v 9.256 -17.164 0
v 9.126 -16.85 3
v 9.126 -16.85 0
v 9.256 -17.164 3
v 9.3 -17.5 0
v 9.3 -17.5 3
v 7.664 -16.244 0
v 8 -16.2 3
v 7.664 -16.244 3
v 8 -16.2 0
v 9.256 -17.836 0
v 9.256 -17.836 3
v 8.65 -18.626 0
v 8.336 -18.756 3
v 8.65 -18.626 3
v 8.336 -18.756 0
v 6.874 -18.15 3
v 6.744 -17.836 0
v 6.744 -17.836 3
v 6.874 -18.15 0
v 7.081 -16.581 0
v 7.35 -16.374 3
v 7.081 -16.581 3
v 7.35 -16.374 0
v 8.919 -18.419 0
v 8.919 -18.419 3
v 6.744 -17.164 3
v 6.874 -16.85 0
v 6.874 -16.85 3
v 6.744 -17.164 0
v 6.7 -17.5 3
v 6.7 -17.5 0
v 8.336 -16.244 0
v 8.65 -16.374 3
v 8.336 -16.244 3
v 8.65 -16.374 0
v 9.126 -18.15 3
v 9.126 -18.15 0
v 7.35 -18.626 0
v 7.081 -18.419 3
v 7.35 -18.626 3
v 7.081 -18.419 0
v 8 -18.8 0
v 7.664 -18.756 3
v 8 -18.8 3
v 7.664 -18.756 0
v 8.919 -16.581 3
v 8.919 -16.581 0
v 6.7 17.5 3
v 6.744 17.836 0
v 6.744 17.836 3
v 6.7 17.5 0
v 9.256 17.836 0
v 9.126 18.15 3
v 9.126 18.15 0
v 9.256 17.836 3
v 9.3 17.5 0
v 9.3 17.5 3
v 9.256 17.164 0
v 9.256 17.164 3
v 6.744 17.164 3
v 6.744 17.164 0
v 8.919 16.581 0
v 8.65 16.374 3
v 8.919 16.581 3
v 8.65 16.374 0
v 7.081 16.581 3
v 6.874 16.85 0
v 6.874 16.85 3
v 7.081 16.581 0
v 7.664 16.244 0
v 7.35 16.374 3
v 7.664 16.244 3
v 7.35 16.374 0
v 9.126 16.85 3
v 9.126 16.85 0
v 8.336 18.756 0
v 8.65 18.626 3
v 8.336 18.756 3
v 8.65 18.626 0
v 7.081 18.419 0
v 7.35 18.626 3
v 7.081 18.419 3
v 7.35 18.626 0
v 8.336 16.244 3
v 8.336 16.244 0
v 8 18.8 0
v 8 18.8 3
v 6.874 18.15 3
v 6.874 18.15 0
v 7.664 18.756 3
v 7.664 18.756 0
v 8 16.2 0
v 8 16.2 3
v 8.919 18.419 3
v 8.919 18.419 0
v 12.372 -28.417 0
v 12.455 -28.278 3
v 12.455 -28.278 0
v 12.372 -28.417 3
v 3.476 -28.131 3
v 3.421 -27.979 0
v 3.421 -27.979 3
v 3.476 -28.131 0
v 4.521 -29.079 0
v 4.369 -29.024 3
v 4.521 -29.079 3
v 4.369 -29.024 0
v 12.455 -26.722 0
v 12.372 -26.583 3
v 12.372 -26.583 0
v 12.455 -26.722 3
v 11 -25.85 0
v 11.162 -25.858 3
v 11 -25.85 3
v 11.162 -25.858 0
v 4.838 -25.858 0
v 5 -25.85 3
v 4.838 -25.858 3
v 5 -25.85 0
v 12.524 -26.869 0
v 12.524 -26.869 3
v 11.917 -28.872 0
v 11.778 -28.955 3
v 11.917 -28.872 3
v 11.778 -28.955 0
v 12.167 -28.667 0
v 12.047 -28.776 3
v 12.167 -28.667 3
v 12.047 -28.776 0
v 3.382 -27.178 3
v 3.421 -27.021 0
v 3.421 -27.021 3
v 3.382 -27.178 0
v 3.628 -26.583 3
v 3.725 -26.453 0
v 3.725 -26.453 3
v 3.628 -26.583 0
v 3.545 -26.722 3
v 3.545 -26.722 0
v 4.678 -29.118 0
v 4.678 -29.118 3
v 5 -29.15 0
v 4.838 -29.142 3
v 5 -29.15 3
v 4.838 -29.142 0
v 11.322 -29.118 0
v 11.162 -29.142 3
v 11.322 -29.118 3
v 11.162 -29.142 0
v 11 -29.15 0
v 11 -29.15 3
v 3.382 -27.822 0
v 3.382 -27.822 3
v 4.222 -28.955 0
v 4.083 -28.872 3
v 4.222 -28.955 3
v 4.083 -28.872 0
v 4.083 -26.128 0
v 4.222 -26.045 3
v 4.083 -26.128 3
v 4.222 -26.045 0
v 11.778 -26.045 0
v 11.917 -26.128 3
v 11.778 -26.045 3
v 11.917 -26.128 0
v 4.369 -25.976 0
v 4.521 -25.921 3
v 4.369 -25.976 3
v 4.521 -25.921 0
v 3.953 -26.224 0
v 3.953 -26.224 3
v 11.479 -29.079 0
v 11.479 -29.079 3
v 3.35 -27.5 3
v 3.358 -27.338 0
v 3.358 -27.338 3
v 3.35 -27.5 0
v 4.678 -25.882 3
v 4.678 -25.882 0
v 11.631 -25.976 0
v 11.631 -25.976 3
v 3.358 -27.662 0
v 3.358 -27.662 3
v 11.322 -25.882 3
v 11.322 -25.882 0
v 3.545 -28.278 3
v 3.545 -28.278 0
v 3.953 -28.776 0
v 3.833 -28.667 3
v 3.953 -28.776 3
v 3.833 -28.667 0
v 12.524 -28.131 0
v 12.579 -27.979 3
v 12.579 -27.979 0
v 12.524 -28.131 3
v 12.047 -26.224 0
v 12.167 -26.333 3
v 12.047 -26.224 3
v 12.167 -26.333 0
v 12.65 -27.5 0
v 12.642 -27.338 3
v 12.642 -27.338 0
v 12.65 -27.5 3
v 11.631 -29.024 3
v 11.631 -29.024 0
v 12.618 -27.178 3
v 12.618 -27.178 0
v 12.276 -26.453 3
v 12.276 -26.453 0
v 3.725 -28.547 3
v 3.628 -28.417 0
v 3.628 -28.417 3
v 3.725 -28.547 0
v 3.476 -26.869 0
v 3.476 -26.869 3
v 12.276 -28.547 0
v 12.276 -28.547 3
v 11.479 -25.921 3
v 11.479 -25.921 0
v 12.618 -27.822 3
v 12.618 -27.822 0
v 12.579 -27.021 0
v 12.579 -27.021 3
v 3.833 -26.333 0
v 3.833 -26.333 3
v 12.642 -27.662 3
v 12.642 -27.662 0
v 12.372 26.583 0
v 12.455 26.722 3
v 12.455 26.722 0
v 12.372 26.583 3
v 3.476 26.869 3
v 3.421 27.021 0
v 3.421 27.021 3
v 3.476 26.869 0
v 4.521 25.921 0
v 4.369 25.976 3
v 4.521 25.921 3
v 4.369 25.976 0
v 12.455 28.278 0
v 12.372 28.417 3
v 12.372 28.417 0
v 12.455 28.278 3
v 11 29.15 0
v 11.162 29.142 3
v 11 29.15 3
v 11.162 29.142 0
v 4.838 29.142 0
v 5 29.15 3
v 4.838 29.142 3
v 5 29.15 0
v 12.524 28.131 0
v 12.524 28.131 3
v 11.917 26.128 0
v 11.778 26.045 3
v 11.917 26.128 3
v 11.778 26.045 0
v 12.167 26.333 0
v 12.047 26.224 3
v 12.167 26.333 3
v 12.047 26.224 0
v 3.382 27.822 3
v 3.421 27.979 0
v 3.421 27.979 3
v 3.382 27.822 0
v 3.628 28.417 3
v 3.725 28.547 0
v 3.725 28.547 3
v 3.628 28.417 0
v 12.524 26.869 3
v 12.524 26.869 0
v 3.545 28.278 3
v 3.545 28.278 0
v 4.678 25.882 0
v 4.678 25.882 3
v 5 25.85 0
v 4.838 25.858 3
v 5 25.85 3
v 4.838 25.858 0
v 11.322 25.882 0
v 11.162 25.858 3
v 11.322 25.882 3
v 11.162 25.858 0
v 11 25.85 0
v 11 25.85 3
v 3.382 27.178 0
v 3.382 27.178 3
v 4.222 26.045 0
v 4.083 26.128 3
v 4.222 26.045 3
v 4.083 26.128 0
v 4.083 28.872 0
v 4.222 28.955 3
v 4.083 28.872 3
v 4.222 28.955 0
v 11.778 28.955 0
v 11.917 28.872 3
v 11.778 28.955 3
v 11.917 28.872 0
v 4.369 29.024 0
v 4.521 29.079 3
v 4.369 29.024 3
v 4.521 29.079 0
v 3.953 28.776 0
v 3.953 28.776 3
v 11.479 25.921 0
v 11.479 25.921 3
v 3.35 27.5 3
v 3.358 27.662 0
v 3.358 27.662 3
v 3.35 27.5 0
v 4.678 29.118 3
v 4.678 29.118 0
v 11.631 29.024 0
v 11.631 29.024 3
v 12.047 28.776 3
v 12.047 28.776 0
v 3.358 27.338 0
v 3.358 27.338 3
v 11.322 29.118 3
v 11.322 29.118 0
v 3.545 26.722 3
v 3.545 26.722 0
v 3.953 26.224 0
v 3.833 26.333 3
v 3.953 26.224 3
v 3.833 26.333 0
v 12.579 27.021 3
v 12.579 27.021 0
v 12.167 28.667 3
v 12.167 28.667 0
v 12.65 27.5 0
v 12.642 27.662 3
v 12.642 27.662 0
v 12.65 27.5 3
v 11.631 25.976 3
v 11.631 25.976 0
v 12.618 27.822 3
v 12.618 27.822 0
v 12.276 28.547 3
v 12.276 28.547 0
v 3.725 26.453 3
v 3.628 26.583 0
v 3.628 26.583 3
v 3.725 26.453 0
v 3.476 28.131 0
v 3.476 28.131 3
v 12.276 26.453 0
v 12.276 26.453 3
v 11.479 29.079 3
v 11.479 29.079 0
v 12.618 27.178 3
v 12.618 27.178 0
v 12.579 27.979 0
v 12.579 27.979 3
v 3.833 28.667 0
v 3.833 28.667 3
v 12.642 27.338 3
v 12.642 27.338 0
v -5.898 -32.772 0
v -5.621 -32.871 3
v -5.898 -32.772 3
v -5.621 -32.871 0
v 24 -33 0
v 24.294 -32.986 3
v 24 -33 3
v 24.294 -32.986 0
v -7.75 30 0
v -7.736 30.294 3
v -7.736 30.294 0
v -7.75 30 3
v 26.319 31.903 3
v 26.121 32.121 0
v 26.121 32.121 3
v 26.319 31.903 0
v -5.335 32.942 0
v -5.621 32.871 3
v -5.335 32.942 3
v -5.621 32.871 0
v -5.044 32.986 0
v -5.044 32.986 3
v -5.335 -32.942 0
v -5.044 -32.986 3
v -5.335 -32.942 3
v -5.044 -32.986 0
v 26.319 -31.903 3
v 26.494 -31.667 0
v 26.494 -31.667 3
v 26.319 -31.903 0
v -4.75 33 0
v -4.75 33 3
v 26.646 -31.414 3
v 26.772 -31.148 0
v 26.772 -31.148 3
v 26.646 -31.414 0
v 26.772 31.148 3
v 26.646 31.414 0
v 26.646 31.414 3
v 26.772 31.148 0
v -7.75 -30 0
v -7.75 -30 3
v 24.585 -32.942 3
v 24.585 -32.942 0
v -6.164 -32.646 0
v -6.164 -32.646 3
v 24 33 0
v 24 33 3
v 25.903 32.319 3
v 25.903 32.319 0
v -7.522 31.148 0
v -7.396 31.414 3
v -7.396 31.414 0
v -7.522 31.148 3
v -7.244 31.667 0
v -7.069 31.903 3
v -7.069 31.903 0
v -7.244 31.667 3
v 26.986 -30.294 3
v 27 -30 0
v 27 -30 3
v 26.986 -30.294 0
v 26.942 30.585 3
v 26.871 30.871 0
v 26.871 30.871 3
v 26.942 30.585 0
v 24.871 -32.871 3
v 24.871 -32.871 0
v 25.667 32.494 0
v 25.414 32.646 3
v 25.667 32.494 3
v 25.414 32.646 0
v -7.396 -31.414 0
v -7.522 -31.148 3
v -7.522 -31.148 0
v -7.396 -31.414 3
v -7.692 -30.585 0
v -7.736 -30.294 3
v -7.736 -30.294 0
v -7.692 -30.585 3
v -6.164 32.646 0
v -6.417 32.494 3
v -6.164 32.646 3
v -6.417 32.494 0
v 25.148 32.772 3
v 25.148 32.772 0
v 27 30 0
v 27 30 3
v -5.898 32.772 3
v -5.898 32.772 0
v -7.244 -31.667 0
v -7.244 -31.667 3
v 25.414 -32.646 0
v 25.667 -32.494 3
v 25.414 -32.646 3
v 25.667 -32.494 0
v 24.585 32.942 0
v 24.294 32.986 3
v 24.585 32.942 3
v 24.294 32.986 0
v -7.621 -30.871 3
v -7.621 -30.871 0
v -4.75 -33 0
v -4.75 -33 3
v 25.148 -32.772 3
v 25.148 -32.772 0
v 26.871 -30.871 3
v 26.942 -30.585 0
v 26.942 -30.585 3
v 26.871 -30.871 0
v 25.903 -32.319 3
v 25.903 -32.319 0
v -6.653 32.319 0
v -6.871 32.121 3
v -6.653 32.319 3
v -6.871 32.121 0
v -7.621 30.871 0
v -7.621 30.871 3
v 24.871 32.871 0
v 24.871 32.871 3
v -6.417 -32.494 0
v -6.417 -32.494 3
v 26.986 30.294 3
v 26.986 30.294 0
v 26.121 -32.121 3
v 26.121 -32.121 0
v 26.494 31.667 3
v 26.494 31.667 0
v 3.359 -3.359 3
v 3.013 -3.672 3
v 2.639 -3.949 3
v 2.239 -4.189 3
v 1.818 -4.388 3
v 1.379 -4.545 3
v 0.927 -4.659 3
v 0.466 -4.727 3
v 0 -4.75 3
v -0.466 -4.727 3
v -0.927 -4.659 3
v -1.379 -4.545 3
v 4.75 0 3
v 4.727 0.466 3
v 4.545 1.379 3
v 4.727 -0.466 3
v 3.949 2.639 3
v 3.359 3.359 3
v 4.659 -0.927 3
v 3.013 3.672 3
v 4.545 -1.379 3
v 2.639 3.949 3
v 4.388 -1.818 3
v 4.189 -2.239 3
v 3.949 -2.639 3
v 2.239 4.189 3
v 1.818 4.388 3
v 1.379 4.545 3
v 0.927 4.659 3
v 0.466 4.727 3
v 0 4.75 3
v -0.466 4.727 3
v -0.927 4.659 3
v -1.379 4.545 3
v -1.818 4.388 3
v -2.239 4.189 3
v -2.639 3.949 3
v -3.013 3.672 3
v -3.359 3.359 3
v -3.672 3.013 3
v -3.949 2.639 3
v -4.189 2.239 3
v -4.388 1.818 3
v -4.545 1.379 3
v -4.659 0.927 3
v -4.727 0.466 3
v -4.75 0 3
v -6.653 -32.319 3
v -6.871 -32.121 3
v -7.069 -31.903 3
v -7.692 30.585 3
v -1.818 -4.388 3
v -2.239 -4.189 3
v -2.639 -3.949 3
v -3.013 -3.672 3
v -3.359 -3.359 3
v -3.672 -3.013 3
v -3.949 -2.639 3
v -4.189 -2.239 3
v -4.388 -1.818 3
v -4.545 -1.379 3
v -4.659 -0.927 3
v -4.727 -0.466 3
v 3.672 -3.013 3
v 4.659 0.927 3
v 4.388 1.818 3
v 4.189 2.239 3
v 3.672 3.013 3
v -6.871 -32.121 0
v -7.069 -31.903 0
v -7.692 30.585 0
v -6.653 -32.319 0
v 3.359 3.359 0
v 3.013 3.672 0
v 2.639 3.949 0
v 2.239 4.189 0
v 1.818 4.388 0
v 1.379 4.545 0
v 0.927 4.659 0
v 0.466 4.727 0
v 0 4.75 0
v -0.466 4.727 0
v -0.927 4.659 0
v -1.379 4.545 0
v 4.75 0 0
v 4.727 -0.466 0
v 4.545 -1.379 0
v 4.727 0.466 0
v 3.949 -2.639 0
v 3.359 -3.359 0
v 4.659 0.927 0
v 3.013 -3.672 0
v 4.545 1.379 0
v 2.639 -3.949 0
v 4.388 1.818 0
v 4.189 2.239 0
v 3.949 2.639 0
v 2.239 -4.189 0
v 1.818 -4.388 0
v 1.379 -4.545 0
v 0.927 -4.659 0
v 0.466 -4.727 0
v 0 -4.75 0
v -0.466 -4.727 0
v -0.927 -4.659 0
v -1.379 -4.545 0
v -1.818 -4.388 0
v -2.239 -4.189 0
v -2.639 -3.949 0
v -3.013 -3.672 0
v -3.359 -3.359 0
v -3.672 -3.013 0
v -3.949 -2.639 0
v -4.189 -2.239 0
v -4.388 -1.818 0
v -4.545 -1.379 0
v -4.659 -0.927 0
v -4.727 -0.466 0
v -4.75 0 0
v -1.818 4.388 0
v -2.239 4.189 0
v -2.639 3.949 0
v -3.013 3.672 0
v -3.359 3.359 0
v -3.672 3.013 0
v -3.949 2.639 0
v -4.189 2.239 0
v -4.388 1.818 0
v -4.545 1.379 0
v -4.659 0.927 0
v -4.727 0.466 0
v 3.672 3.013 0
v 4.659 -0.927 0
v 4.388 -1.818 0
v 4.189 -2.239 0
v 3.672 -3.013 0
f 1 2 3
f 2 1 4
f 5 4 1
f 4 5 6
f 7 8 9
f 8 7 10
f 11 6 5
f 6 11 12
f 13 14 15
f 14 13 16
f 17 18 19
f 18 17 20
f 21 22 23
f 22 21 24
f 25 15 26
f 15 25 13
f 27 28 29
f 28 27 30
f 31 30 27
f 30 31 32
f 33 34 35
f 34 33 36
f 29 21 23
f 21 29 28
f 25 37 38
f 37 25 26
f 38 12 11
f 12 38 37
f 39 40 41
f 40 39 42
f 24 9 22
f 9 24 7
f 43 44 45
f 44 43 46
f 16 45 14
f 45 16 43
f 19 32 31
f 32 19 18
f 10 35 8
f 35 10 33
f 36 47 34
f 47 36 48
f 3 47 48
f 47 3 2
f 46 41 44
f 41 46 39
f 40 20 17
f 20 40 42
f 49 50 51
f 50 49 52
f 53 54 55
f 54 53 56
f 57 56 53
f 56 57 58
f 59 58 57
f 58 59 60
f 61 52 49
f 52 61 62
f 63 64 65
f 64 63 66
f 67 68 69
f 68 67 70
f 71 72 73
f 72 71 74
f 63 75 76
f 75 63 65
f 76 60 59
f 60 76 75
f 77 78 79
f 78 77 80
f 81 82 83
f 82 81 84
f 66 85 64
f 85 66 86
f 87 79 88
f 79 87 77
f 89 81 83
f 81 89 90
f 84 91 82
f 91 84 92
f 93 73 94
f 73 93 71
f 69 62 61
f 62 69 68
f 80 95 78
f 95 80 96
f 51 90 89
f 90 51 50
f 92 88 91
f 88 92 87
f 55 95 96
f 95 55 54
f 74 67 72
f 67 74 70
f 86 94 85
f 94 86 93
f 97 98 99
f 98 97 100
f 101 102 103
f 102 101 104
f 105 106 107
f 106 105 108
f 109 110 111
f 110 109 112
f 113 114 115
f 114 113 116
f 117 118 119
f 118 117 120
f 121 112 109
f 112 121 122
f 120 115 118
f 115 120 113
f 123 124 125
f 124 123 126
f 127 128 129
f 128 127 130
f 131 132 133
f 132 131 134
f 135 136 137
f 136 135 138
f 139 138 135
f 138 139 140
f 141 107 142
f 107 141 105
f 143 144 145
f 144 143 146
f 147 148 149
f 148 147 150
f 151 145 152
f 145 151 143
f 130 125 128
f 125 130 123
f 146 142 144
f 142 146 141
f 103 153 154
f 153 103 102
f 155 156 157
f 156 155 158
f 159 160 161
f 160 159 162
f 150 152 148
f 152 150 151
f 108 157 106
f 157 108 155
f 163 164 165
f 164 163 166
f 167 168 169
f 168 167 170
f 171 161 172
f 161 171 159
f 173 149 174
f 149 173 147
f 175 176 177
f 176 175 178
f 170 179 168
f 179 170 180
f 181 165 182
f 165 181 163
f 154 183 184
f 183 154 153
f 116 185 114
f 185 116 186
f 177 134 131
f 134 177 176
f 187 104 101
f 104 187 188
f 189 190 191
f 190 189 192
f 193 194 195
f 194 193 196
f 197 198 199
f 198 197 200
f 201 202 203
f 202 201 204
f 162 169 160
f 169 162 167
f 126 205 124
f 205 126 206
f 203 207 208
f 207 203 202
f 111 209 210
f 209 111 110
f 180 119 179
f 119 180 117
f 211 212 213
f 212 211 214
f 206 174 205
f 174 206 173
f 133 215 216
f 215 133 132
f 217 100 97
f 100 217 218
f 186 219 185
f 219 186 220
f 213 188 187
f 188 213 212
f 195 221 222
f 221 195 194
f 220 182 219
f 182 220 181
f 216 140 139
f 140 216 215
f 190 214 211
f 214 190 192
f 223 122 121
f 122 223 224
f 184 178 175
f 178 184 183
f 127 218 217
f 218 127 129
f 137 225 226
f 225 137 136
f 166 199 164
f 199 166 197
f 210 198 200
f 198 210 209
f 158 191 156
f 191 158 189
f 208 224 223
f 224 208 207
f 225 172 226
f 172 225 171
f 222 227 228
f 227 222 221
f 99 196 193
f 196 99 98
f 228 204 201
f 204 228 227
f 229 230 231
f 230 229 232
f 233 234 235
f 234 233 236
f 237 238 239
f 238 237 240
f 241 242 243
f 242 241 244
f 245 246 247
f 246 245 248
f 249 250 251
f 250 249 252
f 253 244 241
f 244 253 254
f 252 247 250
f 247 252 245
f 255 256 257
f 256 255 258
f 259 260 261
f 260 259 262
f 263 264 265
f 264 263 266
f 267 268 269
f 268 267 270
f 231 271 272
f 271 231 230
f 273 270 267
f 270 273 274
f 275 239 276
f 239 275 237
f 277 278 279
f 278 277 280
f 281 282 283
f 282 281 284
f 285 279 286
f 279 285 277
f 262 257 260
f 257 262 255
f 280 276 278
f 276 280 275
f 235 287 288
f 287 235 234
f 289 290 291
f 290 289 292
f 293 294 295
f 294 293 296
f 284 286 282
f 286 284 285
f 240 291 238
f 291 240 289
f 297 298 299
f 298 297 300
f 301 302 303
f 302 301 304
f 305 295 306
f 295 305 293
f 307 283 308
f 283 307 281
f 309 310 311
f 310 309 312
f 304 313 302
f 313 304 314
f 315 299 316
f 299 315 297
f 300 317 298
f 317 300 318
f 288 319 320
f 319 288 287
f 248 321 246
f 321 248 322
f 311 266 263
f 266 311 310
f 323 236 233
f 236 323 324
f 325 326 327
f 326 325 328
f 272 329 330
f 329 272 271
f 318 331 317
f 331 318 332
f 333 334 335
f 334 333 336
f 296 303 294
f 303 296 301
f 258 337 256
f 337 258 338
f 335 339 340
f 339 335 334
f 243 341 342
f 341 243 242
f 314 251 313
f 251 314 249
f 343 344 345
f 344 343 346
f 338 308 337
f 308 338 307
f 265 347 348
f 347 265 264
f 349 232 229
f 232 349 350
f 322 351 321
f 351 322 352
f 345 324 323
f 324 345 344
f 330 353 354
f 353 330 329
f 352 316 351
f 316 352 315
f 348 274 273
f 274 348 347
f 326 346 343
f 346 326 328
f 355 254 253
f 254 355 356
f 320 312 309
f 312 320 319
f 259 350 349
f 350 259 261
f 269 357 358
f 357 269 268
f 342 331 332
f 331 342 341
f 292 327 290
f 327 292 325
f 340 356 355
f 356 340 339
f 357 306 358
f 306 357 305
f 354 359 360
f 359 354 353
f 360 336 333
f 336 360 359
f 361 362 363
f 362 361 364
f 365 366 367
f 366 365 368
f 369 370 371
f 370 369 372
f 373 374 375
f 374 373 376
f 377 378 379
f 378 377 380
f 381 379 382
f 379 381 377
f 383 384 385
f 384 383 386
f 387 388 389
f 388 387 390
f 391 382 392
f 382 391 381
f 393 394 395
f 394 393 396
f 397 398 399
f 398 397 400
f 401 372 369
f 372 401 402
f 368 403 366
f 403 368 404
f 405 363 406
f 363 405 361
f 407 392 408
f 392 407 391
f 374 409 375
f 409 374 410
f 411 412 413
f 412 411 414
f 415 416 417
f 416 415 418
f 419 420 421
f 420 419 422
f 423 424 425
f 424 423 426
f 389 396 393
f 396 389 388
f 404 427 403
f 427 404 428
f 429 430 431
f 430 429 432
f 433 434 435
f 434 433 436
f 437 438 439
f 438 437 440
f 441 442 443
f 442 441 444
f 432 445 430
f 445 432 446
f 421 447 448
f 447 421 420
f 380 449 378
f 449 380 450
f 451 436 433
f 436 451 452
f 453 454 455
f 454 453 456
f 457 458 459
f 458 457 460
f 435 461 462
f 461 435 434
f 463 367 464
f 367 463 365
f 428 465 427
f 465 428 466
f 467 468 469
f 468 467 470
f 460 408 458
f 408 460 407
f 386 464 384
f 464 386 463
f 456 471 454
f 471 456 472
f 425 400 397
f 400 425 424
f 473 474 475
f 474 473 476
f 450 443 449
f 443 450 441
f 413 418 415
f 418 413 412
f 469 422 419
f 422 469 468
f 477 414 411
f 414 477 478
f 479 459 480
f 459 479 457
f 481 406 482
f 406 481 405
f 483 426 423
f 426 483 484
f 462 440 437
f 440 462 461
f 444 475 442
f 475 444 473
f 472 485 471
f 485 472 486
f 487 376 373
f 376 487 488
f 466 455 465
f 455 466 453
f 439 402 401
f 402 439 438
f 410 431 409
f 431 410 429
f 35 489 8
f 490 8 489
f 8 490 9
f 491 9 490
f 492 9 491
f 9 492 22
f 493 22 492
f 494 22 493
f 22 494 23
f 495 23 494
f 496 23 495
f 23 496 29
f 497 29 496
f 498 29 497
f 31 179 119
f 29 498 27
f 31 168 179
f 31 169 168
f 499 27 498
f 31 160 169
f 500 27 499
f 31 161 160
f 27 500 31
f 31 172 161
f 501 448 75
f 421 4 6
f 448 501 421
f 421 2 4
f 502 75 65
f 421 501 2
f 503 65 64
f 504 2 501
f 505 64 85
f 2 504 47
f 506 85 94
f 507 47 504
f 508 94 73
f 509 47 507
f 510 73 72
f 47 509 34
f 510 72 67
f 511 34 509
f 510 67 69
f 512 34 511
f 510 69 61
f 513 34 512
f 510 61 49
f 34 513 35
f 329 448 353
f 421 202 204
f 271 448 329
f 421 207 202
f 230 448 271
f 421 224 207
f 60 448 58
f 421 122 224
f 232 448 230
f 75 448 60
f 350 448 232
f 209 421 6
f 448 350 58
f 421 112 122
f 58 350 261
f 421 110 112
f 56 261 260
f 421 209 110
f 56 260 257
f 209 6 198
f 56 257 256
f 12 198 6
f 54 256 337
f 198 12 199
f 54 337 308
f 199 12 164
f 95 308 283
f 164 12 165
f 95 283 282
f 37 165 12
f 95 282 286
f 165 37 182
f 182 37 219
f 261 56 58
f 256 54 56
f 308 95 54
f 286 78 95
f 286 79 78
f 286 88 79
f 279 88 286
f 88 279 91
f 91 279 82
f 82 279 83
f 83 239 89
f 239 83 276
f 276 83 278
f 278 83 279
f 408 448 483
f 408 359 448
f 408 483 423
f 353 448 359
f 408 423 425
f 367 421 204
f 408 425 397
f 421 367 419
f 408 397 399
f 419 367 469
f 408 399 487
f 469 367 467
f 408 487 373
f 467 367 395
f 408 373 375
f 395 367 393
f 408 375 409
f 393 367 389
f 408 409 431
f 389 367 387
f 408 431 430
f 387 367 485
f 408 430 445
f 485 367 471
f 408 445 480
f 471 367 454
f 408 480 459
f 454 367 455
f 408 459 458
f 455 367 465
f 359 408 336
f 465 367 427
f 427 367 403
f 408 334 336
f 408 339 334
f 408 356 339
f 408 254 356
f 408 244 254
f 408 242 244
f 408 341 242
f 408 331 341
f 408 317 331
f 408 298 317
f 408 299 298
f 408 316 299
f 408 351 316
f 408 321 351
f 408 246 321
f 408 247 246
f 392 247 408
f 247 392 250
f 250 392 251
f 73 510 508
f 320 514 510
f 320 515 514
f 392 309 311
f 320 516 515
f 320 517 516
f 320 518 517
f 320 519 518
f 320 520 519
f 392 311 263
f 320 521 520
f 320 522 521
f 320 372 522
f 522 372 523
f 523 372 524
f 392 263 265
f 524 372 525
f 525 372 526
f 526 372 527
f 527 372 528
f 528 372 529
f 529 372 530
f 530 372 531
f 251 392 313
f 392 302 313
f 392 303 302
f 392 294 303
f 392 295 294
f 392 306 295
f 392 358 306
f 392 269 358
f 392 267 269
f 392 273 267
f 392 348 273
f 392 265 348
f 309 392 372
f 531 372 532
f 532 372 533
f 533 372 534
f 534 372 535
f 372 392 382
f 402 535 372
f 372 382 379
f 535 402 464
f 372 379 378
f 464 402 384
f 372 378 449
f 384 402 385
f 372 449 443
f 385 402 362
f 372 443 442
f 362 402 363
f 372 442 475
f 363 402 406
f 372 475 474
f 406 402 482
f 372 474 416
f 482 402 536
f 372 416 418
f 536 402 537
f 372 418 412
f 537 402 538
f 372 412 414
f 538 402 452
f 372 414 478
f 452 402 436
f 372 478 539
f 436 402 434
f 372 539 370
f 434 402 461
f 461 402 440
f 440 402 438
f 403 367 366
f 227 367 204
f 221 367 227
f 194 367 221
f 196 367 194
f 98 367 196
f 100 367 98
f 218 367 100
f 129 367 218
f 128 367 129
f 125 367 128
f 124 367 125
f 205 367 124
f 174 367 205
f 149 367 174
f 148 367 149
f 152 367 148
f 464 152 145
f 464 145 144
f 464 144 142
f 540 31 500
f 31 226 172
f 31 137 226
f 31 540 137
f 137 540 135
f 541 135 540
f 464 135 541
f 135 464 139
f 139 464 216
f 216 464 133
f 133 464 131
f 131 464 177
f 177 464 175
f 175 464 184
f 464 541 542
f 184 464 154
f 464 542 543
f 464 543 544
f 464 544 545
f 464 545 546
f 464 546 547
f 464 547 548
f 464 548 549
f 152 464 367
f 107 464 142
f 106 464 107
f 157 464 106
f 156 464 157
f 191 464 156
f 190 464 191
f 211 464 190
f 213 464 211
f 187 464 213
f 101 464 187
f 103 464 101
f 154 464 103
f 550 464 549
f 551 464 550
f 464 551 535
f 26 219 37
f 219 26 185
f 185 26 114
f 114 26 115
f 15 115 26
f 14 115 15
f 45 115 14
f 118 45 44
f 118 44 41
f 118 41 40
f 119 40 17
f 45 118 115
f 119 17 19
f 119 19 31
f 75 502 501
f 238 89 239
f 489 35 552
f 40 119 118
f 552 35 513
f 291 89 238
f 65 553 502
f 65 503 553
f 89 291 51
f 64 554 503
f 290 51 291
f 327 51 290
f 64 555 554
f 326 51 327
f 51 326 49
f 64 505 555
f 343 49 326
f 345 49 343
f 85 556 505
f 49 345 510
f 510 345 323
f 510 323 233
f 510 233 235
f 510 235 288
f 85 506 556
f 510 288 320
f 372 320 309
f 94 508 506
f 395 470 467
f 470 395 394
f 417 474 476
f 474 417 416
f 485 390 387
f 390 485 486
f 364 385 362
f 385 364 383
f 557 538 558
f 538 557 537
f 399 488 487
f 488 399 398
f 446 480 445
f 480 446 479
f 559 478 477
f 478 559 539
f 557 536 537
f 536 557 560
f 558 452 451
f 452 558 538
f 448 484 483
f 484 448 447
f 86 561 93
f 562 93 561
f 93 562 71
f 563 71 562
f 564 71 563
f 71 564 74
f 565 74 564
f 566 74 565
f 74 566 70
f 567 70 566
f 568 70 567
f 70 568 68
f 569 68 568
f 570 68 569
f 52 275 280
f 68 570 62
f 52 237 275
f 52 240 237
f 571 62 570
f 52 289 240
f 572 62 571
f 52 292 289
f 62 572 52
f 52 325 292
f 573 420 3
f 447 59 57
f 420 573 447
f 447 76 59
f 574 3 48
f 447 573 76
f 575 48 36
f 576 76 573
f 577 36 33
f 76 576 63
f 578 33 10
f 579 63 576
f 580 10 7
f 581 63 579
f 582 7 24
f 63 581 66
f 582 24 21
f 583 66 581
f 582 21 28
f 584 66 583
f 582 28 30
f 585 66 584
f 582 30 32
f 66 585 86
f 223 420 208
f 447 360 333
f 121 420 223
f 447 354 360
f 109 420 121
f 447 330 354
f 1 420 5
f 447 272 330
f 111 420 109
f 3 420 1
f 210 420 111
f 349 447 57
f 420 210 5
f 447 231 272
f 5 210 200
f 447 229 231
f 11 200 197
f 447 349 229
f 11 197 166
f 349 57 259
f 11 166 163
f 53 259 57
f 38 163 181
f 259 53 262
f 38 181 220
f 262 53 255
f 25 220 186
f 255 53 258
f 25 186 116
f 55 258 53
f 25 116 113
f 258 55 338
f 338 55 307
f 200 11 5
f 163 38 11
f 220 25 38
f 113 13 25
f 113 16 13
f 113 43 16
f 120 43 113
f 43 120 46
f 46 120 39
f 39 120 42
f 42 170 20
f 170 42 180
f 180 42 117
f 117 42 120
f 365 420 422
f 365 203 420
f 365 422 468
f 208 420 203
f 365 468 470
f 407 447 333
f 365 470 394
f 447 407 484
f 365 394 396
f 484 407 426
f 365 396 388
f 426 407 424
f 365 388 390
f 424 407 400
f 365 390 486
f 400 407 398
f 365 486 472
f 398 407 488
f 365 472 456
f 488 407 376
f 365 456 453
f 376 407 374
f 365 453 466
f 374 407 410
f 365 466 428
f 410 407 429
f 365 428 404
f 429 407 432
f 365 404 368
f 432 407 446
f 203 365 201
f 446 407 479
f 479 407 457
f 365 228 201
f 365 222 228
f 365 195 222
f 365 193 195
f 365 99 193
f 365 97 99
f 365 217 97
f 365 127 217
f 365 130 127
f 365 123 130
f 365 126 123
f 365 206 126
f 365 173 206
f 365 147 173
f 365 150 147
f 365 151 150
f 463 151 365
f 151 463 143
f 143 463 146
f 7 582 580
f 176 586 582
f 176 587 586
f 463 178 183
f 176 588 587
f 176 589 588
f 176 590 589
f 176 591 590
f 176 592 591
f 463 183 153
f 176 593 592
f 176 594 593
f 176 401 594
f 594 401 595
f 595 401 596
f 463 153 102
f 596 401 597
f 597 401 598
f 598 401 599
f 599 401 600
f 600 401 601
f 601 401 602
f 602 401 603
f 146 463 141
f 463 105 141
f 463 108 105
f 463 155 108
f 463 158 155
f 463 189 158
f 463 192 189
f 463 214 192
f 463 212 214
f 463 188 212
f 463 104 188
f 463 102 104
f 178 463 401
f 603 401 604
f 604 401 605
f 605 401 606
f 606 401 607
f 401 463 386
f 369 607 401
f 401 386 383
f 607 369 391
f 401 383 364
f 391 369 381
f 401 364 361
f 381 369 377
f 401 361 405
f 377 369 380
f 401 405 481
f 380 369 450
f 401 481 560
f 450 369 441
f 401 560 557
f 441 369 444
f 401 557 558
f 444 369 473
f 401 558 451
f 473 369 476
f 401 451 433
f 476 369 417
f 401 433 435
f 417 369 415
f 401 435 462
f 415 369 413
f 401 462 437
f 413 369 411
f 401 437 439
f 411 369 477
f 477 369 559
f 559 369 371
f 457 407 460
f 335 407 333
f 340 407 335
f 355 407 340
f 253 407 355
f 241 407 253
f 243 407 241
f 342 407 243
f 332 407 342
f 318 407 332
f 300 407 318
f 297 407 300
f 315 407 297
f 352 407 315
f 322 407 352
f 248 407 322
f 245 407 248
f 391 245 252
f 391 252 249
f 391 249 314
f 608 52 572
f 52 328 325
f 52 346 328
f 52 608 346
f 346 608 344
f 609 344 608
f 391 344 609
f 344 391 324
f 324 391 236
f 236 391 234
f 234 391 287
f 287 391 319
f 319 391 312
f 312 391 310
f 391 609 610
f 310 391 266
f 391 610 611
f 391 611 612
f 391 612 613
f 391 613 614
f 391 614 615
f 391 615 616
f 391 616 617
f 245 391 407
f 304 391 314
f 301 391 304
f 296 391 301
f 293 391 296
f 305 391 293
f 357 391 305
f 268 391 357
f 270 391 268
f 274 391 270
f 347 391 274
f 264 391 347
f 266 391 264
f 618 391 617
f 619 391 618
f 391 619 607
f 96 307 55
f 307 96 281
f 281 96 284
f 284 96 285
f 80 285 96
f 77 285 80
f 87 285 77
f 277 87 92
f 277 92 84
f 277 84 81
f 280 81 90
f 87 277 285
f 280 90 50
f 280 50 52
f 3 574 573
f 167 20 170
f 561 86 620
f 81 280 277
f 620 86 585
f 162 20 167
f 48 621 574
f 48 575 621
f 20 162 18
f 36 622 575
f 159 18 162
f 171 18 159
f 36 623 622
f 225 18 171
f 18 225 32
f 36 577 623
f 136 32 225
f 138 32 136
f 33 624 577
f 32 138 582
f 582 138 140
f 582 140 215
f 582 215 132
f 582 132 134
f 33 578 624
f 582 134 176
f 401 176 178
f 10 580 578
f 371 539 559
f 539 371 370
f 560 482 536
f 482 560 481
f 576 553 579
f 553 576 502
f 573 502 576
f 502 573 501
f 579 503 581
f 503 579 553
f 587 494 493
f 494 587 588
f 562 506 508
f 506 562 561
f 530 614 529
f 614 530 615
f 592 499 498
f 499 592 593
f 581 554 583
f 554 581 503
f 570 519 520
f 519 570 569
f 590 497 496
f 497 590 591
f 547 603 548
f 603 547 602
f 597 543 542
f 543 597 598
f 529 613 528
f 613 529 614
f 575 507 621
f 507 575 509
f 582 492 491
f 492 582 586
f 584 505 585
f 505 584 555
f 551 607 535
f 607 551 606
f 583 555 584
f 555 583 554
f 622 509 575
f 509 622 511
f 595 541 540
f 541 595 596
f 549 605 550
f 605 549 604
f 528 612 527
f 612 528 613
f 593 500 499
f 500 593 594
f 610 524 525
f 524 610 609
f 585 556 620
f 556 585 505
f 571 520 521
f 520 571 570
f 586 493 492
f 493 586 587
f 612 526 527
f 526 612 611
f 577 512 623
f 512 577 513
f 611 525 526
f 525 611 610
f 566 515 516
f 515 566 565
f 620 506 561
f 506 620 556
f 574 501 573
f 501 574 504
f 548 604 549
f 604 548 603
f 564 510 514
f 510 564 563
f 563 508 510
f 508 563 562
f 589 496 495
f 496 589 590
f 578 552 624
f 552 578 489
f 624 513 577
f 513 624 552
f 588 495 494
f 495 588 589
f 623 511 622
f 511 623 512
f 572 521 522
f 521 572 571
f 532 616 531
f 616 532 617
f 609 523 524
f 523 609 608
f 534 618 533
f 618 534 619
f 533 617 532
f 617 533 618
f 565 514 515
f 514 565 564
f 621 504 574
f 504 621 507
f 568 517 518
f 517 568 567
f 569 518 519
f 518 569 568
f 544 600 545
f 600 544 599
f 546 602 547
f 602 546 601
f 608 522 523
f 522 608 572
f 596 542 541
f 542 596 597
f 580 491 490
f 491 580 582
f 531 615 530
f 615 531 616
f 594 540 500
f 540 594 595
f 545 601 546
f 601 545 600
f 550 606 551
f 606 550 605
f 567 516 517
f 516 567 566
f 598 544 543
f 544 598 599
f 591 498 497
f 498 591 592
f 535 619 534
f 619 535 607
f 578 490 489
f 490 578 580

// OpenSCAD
// ==========================================
// Proyecto: piezas3D – Puntero láser estelar
// Componente: Carro del motor (×2)
// Descripción: Placa tensora que sujeta un 28BYJ-48 por sus orejas (M3 autorroscante) y se fija
//              con 2 M3 en ranuras de ±recorrido_tensor. La misma pieza sirve para los dos ejes:
//              en azimut se apoya sobre la plataforma con el motor encima; en altura se atornilla
//              a los pilares del brazo con el motor entre el carro y el brazo. El tornillo del tope
//              empuja la cara −X (la más cercana a la polea conducida).
// ==========================================

// --- PARÁMETROS Y CONSTANTES ---
include <puntero_laser_parametros.scad>

/* [Hidden] */
radio_esquina_carro = 3;

// --- MÓDULOS PRINCIPALES Y ENSAMBLAJE ---
ensamblaje_principal();

module ensamblaje_principal() {
    pieza_carro_motor();
}

// Sistema del carro: eje del motor en el origen, cuerpo del motor hacia +X, z = 0 cara de apoyo.
module pieza_carro_motor() {
    difference() {
        placa_carro();
        agujeros_orejas();
        ranuras_fijacion();
        // Paso del resalte y del eje del motor
        translate([0, 0, -1]) cylinder(d = motor_d_resalte + 2*holgura_encastre, h = espesor_carro + 2);
    }
}

module placa_carro() {
    placa_redondeada(carro_x_min, -carro_semiancho, carro_x_max, carro_semiancho,
                     radio_esquina_carro, espesor_carro);
}

// Orejas del 28BYJ-48: M3 autorroscante en el plástico (U-05)
module agujeros_orejas() {
    for (s = [-1, 1])
        translate([motor_desplazamiento_eje, s*motor_entre_orejas/2, -1])
            cylinder(d = diametro_autorroscante_m3, h = espesor_carro + 2, $fn = 24);
}

// Ranuras de fijación a lo largo de X: el carro se desliza ±recorrido_tensor (U-06)
module ranuras_fijacion() {
    for (s = [-1, 1])
        translate([ranura_carro_x, s*ranura_carro_y, -1])
            ranura(m3_d + holgura_tornillo_m3, 2*recorrido_tensor, espesor_carro + 2);
}
